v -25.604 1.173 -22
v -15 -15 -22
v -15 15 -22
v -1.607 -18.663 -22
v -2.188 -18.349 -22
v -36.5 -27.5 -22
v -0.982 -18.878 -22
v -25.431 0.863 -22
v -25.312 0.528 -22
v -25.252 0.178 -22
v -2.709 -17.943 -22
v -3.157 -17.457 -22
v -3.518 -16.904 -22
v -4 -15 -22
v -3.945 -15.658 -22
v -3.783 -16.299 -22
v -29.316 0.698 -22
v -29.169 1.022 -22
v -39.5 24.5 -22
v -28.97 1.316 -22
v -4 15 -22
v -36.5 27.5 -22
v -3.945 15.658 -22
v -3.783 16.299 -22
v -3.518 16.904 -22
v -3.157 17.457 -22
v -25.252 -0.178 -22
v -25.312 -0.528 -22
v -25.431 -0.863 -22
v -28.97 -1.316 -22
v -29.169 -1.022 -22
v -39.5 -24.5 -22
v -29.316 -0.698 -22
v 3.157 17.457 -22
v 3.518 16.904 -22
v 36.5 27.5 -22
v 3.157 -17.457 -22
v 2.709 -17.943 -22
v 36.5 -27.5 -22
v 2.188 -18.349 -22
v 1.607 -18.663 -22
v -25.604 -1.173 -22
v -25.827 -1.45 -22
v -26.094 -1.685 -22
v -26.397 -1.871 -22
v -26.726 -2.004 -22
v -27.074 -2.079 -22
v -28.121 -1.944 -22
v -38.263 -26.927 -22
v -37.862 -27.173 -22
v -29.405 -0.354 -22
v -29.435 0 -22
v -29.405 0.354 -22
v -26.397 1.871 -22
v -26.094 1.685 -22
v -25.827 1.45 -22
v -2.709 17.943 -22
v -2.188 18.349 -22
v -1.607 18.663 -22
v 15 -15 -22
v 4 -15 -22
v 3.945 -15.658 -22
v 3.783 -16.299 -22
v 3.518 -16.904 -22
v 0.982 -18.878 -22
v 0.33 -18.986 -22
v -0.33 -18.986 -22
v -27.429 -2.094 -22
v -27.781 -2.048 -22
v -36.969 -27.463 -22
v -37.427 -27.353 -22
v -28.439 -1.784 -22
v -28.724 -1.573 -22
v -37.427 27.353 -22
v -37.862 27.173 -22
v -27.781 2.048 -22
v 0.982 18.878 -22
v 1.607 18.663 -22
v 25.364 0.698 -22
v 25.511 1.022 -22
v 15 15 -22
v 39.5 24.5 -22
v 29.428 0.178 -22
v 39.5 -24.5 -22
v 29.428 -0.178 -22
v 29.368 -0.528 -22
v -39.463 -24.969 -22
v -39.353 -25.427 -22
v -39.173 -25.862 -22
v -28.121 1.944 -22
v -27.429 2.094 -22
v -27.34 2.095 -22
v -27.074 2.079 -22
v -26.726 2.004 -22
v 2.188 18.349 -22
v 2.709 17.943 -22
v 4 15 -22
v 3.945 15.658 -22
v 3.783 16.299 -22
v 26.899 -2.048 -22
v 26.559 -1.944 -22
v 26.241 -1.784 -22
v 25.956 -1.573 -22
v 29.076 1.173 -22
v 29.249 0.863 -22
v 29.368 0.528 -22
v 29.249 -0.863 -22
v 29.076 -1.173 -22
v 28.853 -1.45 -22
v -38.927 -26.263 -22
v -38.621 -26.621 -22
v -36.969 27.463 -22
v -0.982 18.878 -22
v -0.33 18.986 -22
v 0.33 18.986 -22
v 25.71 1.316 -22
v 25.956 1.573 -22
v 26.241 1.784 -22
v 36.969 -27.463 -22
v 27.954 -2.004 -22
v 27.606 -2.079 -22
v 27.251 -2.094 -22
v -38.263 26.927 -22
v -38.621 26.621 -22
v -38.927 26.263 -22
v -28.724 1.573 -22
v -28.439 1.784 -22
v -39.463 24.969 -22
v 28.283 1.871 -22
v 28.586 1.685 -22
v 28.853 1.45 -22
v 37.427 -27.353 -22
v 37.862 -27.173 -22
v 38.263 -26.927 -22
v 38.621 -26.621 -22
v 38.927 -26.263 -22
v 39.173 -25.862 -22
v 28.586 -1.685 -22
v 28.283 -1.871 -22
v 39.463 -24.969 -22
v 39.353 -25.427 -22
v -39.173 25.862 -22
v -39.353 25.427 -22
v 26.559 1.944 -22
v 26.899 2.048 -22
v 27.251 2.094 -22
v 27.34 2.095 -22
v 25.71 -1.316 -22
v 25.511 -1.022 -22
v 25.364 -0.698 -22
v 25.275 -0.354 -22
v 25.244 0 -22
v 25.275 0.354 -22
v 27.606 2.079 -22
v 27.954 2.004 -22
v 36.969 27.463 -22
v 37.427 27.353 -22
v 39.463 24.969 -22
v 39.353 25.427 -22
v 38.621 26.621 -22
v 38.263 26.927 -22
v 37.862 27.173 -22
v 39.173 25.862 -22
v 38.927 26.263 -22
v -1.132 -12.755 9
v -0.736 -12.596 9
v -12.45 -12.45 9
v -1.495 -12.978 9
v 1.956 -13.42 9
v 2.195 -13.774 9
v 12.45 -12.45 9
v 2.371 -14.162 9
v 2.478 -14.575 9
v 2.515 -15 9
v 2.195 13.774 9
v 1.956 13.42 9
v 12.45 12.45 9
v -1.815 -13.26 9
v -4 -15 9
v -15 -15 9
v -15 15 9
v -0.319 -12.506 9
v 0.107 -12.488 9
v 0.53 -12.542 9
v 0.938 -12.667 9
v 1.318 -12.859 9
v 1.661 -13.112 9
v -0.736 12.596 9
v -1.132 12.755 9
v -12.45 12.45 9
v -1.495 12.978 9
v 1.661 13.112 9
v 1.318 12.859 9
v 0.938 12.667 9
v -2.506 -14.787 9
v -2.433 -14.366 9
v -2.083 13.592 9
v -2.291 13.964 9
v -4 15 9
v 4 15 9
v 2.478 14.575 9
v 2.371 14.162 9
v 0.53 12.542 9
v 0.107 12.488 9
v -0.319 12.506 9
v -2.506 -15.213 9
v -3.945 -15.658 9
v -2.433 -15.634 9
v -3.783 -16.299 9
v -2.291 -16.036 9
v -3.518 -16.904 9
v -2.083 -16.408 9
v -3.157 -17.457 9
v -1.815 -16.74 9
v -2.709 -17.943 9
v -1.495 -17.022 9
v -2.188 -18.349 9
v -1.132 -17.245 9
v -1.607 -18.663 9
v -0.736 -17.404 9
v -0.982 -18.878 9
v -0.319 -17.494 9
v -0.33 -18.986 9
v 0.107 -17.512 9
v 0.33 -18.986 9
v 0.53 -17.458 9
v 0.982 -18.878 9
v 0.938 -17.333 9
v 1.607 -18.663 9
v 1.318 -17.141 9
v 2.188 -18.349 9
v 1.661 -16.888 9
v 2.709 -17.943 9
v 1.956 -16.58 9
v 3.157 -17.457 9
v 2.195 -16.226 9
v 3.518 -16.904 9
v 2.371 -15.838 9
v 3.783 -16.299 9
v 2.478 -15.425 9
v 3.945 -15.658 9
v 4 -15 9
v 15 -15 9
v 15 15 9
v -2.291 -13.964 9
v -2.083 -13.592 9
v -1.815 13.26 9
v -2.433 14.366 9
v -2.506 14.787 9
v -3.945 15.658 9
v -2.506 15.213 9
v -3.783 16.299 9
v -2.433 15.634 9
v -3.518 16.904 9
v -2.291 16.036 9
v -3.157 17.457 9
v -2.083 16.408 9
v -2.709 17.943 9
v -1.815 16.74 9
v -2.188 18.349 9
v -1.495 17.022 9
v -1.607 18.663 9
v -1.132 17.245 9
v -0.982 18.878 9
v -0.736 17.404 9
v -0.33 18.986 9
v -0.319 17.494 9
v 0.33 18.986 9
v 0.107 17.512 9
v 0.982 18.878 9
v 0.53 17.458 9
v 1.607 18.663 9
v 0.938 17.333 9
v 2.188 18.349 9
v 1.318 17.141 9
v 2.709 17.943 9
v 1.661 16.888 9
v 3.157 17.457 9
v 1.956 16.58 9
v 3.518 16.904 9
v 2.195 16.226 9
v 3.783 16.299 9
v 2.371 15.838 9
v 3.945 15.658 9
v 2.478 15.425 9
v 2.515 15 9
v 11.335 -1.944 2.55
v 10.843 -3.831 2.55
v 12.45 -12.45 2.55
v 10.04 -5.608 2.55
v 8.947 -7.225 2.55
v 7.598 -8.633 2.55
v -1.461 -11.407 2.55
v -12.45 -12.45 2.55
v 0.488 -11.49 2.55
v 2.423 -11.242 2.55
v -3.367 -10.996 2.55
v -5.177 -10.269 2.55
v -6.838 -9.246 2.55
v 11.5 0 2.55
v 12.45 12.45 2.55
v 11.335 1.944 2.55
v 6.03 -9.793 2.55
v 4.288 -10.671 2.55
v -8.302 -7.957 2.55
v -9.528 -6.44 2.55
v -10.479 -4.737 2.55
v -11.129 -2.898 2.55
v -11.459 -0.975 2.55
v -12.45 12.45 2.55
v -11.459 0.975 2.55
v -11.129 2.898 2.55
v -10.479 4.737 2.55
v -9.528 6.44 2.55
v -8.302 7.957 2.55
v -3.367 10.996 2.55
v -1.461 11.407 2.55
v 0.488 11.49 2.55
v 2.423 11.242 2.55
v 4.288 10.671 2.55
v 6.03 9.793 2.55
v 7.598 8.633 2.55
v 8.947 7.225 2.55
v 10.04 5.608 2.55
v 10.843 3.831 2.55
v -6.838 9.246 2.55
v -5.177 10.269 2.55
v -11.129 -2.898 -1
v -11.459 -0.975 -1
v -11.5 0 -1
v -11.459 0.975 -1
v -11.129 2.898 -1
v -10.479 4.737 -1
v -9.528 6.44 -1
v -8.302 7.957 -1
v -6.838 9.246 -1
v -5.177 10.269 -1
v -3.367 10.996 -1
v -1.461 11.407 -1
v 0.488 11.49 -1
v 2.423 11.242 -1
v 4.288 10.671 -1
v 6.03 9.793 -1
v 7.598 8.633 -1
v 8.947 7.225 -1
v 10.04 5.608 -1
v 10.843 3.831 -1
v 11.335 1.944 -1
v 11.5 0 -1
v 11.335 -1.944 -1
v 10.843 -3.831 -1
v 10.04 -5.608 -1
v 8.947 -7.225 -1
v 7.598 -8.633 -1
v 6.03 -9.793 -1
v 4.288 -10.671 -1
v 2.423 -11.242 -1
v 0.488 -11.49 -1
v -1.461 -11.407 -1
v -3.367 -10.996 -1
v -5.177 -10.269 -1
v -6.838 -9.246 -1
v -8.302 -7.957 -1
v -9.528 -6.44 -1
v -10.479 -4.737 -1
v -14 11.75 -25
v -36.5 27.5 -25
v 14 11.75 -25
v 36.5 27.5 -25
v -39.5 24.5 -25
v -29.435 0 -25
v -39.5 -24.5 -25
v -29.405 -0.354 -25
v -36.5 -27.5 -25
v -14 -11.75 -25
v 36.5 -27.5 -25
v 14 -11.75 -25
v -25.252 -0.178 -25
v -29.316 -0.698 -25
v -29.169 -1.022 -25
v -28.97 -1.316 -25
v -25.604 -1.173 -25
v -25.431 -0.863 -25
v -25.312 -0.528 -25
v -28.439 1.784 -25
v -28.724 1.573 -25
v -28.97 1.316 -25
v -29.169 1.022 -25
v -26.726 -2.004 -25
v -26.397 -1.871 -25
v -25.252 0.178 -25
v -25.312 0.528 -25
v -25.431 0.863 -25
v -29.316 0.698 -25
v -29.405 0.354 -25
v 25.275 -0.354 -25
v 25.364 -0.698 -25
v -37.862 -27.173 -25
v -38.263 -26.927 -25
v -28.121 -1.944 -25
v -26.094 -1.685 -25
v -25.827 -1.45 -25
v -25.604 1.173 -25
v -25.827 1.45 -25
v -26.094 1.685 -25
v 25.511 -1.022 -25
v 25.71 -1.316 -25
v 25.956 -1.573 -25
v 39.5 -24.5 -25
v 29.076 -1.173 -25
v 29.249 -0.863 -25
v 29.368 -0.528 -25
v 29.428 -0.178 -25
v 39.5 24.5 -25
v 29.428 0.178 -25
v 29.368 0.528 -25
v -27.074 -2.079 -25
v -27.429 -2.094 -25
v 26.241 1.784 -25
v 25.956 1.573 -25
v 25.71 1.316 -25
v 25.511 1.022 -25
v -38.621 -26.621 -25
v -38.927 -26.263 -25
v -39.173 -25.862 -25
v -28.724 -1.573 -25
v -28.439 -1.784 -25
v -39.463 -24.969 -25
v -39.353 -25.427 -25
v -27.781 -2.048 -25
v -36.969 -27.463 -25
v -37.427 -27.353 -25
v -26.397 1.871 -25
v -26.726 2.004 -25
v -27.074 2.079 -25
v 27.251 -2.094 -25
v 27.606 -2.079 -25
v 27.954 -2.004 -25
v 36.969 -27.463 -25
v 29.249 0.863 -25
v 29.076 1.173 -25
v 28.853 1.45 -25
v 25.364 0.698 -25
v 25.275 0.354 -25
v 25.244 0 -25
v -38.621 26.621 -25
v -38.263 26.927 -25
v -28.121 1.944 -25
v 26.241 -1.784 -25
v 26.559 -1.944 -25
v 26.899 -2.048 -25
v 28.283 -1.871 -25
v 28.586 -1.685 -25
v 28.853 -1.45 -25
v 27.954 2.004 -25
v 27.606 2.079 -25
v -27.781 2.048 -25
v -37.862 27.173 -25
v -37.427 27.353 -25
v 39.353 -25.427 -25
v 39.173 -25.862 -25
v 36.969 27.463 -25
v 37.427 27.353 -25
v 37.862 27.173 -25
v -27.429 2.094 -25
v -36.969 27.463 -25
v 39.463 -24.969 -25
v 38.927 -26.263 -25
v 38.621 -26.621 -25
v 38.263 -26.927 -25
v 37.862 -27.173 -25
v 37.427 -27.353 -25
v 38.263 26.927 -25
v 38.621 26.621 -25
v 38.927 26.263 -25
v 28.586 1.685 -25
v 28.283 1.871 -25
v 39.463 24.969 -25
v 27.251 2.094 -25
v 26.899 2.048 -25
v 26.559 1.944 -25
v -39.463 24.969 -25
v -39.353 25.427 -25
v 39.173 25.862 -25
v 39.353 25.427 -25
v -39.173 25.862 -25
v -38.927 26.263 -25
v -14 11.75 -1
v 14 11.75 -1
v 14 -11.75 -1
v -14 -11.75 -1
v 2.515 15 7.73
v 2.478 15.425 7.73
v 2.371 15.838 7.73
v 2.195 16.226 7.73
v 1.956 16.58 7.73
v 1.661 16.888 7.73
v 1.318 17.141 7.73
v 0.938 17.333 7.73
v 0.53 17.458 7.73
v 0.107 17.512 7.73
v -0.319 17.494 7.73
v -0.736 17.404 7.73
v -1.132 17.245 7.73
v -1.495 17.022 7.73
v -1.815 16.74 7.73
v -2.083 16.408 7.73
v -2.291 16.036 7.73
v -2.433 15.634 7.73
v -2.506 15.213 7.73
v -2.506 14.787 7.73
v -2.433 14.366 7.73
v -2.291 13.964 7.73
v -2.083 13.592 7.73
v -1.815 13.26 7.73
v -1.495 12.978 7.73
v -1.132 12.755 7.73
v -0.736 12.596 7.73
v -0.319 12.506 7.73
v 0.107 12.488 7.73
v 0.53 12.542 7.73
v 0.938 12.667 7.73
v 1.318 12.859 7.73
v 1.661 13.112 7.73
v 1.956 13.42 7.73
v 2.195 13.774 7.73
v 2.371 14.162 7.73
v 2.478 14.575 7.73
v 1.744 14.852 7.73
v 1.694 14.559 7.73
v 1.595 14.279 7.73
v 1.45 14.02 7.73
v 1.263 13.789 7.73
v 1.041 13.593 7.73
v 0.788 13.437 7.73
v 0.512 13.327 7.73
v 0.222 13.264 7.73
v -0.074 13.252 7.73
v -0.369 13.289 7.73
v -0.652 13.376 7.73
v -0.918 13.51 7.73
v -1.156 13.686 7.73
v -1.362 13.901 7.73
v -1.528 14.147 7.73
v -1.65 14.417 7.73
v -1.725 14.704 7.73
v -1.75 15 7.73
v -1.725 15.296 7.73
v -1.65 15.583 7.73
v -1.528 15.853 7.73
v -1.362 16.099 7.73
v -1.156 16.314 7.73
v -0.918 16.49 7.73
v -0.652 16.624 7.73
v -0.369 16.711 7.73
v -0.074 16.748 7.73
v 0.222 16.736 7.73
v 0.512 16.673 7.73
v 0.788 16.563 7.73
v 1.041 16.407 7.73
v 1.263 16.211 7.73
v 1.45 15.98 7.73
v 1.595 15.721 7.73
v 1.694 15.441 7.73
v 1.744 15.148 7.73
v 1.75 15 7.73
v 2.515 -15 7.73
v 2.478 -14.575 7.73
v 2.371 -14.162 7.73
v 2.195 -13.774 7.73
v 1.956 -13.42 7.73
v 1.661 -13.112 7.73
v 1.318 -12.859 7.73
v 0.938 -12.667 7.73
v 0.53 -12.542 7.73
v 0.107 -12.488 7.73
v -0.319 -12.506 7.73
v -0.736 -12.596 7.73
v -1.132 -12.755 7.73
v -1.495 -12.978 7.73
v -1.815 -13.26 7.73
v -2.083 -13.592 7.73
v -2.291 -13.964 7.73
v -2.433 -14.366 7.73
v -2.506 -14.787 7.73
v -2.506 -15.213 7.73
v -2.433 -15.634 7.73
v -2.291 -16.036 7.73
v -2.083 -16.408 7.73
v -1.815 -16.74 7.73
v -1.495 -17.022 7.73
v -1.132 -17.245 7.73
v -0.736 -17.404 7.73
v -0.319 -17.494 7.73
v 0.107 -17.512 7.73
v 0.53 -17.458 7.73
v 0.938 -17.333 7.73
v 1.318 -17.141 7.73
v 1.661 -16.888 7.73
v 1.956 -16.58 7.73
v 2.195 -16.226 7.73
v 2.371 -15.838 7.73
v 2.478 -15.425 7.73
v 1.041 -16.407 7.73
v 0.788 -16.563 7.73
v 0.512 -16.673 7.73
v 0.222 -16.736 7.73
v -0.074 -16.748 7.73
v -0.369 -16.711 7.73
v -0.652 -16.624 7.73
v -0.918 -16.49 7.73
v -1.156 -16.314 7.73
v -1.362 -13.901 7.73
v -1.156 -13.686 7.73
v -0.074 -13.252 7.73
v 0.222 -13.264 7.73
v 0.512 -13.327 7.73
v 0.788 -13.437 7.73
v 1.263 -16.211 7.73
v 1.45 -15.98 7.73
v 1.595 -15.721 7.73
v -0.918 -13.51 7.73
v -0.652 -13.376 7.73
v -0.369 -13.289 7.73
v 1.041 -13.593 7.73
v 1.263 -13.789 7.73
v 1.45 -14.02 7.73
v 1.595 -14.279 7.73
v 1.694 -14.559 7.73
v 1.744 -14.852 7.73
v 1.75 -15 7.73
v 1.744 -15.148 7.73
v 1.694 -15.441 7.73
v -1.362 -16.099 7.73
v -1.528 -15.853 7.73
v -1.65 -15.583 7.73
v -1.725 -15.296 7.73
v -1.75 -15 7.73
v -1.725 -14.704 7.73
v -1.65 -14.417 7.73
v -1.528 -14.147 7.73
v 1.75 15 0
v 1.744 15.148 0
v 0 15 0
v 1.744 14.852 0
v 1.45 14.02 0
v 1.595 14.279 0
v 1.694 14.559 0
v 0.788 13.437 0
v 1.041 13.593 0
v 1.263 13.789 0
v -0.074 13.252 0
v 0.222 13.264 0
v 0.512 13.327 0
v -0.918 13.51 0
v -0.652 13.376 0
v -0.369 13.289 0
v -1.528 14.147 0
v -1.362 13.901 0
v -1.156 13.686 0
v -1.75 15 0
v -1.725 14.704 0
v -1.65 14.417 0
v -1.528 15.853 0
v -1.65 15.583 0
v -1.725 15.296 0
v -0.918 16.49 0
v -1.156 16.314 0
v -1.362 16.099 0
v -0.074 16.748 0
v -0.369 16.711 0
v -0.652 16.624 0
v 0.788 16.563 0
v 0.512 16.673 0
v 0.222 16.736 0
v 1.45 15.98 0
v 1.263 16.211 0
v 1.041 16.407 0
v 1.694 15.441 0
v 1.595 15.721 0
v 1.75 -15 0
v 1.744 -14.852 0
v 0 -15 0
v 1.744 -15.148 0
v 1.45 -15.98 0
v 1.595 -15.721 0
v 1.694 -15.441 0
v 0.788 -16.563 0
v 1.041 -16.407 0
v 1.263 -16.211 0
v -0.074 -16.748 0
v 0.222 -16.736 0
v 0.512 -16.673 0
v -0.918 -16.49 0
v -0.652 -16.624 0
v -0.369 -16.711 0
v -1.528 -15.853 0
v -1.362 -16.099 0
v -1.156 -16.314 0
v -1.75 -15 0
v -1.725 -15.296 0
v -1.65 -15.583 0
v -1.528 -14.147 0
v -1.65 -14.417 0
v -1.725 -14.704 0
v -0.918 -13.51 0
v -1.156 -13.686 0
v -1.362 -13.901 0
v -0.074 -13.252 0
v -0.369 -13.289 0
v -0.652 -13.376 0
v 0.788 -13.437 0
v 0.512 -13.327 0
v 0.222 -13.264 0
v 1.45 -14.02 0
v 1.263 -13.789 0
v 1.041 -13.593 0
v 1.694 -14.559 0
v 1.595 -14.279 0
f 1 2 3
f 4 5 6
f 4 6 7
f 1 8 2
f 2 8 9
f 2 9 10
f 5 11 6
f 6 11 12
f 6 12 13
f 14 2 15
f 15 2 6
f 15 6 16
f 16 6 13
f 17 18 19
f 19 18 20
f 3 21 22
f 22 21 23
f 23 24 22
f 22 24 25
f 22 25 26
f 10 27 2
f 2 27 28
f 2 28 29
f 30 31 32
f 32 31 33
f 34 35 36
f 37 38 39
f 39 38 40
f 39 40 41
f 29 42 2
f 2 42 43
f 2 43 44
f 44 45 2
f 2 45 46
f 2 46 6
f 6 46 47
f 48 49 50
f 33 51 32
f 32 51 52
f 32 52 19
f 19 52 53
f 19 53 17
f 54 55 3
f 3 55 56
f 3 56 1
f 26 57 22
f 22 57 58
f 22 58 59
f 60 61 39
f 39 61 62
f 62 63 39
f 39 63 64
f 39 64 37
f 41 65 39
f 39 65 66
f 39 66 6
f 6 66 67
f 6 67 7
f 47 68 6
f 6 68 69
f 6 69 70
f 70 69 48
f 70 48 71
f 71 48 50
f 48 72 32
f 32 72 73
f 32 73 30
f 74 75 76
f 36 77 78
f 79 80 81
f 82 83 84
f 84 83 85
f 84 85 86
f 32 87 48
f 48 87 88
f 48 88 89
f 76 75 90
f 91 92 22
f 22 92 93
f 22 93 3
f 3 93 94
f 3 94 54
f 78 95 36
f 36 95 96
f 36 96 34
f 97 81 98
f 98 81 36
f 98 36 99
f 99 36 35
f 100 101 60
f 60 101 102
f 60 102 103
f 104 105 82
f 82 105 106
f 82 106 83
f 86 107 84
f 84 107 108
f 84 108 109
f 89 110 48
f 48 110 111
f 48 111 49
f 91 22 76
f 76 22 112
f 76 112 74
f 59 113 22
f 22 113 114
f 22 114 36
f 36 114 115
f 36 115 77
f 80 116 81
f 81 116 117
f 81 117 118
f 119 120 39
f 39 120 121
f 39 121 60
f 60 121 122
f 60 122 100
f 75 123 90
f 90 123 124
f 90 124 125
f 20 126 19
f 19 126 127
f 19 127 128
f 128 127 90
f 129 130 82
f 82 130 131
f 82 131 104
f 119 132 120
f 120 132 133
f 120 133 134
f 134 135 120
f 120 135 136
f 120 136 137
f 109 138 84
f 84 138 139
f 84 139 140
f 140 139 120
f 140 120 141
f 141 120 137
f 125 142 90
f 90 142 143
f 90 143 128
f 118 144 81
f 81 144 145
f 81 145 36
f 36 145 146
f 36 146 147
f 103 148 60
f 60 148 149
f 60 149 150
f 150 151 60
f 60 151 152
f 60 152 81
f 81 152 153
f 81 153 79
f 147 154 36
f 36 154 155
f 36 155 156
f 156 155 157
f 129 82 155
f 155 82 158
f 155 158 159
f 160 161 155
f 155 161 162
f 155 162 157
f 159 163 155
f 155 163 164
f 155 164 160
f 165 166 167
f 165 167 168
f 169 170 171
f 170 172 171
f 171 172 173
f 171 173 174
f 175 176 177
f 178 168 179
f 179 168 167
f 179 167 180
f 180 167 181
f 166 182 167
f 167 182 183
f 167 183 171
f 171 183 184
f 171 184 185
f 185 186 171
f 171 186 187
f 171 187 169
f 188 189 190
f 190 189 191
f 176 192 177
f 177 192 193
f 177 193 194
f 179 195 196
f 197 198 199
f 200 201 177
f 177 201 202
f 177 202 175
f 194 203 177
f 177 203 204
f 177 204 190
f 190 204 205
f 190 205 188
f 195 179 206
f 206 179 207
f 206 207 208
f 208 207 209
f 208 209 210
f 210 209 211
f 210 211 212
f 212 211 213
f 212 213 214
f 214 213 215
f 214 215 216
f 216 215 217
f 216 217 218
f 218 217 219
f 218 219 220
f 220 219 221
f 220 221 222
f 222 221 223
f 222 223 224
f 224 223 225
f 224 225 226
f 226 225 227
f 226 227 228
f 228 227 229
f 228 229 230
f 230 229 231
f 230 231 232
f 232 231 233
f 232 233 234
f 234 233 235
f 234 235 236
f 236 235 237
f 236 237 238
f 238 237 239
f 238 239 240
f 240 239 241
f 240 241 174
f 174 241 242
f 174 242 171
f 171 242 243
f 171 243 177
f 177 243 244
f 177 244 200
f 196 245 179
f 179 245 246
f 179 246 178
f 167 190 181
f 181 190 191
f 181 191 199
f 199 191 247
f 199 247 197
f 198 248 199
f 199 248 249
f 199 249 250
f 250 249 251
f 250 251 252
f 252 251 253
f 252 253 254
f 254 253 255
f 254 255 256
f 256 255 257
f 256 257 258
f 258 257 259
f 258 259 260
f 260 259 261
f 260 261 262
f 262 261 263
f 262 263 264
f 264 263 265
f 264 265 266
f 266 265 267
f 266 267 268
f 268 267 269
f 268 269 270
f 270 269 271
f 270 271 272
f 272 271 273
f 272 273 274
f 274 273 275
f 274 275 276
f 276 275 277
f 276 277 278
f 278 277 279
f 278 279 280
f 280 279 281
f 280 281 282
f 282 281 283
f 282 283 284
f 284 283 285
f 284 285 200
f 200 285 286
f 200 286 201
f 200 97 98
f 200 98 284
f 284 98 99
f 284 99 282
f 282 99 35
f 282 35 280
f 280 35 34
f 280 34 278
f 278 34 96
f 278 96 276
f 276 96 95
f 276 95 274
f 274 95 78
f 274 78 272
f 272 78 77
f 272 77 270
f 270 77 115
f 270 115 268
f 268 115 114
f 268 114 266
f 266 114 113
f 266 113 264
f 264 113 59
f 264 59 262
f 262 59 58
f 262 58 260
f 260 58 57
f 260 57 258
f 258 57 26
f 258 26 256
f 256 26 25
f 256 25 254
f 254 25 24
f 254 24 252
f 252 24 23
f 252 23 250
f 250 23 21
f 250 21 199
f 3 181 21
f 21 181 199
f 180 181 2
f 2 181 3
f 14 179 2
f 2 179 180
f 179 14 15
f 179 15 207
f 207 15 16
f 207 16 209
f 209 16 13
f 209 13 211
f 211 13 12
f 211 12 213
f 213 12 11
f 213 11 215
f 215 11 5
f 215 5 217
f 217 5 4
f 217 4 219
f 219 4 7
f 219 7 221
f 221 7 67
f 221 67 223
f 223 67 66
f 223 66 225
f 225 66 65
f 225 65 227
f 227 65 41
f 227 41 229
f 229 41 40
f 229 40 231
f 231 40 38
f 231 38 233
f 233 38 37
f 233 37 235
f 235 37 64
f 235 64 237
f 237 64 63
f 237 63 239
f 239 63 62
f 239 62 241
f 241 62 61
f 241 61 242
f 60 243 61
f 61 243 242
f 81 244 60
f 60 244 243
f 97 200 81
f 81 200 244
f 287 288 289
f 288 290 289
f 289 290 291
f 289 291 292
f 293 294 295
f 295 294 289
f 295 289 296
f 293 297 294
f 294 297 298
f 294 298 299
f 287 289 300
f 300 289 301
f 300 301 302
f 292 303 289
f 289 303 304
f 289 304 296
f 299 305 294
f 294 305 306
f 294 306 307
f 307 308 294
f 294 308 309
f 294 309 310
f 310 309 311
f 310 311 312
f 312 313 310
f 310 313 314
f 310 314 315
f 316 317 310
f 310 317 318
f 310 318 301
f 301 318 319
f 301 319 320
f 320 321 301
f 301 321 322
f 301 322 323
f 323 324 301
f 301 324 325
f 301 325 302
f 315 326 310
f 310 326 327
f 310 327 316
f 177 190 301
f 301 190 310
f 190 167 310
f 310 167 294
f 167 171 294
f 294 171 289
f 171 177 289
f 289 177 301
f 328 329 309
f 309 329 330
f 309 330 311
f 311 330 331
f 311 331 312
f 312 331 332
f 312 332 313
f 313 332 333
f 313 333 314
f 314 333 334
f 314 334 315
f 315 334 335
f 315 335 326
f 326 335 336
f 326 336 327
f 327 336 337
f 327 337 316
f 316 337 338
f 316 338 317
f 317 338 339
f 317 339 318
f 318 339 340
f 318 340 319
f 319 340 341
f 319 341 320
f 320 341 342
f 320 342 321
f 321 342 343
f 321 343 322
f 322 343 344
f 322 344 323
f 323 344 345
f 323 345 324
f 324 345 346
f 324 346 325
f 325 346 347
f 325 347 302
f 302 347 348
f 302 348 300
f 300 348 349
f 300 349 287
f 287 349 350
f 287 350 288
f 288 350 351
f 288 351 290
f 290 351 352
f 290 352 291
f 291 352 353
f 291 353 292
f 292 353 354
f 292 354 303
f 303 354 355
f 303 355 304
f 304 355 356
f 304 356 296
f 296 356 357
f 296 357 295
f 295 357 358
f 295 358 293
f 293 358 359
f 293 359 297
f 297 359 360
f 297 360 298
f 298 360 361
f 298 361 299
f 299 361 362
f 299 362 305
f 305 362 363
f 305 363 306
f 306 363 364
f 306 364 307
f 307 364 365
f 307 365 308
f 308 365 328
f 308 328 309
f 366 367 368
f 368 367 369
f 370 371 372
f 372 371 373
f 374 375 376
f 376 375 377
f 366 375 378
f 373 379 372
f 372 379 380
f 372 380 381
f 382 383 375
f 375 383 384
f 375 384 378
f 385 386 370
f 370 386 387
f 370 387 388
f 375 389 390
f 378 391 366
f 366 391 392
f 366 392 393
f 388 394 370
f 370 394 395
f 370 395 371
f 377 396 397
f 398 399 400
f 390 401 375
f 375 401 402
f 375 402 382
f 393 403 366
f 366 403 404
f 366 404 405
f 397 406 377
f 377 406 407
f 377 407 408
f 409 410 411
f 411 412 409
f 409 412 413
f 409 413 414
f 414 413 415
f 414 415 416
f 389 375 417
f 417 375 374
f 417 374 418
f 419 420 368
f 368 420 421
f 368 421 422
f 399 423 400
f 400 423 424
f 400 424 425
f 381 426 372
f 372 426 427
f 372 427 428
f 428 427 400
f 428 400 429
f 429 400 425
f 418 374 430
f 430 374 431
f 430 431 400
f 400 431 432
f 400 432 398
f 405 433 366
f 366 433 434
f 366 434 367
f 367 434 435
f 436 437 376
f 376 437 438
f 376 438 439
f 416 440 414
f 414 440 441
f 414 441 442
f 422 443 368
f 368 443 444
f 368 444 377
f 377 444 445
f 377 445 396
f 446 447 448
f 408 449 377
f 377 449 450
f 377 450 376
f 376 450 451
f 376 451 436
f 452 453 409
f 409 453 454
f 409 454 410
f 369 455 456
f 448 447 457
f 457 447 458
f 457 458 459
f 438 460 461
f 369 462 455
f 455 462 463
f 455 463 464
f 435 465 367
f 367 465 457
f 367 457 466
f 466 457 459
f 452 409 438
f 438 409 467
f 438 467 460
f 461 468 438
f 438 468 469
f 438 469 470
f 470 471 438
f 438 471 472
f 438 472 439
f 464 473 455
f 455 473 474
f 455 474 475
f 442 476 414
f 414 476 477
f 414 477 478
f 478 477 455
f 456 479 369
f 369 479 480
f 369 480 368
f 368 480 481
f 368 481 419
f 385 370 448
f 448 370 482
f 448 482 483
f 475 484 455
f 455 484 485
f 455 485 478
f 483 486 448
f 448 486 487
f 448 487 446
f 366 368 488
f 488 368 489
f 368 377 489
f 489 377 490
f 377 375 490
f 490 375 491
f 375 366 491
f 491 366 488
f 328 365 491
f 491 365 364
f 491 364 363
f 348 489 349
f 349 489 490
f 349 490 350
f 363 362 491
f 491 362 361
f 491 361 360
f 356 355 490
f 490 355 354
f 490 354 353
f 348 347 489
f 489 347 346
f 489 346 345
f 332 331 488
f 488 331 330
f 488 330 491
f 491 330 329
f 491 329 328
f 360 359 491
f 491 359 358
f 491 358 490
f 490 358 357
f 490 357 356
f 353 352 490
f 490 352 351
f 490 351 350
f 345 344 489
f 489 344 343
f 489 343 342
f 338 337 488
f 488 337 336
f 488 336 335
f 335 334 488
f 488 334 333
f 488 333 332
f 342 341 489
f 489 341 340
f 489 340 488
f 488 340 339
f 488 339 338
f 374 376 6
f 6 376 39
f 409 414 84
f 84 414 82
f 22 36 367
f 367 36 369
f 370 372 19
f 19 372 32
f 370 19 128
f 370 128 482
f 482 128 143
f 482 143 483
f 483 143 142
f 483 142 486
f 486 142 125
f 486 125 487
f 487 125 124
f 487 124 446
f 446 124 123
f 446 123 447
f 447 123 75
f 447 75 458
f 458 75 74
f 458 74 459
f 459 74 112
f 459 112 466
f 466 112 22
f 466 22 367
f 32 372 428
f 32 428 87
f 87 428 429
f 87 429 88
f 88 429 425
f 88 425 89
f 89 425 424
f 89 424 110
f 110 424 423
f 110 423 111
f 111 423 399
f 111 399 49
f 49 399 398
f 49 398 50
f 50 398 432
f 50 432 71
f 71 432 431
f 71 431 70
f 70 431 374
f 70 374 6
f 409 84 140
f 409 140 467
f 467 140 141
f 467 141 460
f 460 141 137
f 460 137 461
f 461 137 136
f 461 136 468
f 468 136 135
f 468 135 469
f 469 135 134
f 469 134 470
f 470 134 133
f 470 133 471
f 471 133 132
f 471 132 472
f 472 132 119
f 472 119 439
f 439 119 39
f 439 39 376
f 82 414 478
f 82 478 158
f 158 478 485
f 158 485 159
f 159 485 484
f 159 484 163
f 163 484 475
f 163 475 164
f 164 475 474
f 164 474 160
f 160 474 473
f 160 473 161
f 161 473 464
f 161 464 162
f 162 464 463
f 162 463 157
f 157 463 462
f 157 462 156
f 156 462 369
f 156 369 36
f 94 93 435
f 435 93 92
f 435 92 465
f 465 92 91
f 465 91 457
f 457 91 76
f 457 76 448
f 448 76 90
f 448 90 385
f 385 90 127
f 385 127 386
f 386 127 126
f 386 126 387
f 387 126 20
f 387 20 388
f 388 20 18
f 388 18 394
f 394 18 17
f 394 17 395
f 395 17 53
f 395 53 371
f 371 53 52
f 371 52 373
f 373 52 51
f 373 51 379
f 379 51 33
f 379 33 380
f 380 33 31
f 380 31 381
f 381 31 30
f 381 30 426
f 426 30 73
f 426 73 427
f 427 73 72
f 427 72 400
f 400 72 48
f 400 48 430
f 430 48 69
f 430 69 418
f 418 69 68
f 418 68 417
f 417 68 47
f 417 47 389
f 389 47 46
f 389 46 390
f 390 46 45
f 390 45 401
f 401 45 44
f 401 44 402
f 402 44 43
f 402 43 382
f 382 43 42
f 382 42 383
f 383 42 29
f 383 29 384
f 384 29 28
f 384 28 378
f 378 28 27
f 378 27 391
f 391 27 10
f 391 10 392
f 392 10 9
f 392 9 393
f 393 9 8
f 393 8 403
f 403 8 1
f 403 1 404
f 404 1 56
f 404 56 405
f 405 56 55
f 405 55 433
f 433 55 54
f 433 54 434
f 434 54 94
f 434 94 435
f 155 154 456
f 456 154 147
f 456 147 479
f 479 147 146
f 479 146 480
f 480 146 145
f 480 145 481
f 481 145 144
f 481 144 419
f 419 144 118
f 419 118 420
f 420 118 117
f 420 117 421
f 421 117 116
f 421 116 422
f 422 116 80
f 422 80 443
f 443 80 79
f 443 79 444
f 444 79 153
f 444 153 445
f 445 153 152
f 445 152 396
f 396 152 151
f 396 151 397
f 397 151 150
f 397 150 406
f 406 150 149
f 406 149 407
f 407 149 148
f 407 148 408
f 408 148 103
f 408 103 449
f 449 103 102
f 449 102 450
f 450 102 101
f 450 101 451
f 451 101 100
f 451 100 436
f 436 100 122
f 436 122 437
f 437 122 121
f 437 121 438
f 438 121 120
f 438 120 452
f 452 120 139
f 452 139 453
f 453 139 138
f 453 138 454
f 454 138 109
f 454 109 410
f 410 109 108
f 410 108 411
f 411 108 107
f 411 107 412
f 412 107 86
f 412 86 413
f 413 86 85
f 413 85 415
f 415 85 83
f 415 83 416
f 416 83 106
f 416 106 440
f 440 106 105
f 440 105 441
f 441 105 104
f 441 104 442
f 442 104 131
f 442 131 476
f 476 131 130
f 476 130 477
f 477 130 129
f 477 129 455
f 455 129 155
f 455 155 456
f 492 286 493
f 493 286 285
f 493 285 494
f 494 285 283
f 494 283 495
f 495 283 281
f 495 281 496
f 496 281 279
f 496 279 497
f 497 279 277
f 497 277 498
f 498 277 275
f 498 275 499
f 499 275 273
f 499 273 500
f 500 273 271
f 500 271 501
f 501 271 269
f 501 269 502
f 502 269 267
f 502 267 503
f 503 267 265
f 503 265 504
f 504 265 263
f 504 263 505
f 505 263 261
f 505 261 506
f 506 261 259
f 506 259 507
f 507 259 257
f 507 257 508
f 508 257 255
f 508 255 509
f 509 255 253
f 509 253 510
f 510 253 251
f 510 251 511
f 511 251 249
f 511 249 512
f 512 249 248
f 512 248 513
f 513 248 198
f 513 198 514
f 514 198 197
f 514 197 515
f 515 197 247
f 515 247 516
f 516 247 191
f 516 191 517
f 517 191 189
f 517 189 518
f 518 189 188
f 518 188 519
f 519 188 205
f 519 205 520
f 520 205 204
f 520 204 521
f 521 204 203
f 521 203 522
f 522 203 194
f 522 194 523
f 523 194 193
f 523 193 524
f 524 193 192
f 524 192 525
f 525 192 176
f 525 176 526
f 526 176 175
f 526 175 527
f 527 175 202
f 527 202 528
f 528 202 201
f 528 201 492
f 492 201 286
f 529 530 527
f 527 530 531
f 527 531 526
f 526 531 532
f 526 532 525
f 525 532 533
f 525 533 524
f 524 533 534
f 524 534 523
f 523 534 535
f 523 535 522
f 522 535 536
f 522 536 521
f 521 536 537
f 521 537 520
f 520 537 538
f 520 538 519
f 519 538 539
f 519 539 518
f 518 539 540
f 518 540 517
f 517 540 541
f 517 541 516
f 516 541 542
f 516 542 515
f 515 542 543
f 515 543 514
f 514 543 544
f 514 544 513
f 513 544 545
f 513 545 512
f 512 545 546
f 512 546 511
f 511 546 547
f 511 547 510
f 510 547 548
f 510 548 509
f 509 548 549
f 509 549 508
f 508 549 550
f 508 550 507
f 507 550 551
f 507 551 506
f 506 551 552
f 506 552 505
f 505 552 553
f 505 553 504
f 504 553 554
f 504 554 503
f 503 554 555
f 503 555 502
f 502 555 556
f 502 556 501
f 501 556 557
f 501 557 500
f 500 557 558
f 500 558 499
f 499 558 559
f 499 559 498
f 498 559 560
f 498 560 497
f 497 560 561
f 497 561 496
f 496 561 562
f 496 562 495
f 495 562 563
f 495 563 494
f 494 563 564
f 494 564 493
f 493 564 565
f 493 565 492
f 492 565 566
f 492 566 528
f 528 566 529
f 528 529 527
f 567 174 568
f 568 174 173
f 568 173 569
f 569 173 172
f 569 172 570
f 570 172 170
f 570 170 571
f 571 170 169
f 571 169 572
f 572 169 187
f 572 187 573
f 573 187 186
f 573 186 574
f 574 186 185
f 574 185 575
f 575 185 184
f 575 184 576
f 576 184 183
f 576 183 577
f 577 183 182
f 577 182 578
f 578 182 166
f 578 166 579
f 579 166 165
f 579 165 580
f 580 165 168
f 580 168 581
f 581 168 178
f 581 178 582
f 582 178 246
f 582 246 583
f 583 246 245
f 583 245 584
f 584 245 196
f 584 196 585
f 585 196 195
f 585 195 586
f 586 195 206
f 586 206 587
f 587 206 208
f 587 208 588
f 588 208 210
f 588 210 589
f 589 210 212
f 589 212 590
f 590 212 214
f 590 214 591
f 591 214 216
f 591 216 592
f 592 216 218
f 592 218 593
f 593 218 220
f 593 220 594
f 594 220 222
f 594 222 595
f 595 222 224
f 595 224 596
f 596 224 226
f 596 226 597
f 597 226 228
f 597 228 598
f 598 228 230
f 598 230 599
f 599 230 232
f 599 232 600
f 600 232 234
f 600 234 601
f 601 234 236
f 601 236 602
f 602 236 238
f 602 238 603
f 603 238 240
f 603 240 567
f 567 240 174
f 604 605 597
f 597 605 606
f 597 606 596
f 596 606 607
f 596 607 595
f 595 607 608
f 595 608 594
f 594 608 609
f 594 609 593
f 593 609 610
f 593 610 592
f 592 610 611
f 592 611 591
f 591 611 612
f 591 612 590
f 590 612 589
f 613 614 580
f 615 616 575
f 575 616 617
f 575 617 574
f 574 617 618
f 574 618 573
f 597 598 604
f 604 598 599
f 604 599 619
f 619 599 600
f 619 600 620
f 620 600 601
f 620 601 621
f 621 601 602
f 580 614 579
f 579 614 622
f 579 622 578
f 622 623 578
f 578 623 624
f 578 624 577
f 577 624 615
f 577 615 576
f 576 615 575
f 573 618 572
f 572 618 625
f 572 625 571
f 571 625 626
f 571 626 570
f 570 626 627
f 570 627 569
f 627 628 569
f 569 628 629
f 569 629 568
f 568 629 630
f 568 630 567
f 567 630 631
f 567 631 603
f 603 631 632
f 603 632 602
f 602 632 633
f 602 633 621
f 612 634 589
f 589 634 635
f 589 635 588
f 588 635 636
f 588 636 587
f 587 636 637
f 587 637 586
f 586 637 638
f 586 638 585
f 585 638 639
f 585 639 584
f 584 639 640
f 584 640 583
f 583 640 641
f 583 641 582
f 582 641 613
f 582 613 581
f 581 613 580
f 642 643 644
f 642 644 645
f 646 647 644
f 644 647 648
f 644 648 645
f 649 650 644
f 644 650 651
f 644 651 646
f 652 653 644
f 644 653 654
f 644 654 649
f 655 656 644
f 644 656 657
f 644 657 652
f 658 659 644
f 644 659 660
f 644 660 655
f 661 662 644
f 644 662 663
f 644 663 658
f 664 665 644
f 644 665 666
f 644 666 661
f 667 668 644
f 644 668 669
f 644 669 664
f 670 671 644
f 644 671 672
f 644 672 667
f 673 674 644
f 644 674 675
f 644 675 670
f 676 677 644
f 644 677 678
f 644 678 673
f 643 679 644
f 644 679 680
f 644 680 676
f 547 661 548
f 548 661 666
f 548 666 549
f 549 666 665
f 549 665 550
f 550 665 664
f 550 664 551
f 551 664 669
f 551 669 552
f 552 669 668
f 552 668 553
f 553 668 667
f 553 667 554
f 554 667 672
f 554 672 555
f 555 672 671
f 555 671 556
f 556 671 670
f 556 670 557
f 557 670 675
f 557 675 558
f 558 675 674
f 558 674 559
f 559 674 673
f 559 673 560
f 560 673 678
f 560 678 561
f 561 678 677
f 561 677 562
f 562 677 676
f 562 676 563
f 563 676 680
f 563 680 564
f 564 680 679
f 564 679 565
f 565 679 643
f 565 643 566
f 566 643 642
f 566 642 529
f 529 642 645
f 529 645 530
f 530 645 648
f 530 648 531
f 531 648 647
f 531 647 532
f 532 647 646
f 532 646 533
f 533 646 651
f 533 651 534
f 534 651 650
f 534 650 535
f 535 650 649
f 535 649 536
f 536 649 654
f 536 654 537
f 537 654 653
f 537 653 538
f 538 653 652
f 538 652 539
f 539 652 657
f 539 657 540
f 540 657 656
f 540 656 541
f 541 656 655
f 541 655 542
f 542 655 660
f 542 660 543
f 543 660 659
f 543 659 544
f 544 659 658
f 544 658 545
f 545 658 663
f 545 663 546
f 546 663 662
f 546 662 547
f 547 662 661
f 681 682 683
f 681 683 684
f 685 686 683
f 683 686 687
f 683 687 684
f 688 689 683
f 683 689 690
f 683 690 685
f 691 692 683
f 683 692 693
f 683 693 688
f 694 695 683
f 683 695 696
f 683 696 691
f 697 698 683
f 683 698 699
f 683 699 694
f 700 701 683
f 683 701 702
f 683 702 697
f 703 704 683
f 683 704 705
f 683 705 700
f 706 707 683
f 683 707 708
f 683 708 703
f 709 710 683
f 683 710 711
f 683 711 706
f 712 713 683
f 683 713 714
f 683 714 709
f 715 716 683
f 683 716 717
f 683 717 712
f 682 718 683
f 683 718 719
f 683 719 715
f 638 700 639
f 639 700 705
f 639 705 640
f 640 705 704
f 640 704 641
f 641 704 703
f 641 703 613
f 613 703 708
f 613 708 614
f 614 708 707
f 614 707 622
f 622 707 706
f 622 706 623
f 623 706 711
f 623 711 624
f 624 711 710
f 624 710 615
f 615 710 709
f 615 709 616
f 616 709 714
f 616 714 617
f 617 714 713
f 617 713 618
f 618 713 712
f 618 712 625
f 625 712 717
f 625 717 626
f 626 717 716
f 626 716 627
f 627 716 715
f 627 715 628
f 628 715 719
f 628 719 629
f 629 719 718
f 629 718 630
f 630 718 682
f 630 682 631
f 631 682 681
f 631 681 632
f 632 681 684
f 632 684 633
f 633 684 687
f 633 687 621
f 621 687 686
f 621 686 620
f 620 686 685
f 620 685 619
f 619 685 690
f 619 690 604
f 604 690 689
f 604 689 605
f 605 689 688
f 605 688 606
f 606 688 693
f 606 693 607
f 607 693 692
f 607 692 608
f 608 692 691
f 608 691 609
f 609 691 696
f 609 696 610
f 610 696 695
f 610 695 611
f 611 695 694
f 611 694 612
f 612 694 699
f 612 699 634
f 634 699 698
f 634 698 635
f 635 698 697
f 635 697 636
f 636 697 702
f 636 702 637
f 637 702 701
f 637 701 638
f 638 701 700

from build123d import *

# Parameters (mm, degrees)
SKETCH1_R            = 1.75
BOSS_EXTRUDE1_DEPTH  = 9
SHELL2_START         = 2.55
SHELL2_OUTLINE_W     = 24.9
SHELL2_OUTLINE_H     = 24.9
SHELL2_DEPTH         = 6.45
CUT_EXTRUDE1_REACH   = 27.052
SKETCH6_R            = 11.5
BOSS_EXTRUDE5_DEPTH  = 25
SHELL7_T             = -1
CUT_EXTRUDE6_START   = -1
SKETCH12_R           = 11.5
CUT_EXTRUDE6_DEPTH   = 1
SKETCH19_W           = 3
SKETCH19_H           = 25.5
BOSS_EXTRUDE17_DEPTH = 23
SKETCH20_W           = 3
SKETCH20_H           = 25.5
BOSS_EXTRUDE18_DEPTH = 23
SKETCH21_W           = 79
SKETCH21_H           = 55
SKETCH21_W_2         = 76
SKETCH21_H_2         = 25.5
BOSS_EXTRUDE19_DEPTH = 3
FILLET1_R            = 3
SKETCH22_R           = 2.0955
CUT_EXTRUDE7_DEPTH   = 3
BOSS_EXTRUDE34_REACH = 56.236
SKETCH37_R           = 2.5146
CUT_EXTRUDE8_DEPTH   = 1.27


# Read off the part's stored shape, not the designer's step: Shell2
with BuildPart() as part:
    # Sketch1 → Boss-Extrude1 (new body)
    with BuildSketch(Plane.XY):
        with BuildLine():
            Line((15, 15), (4, 15))
            ThreePointArc((4, 15), (0, 19), (-4, 15))
            Line((-4, 15), (-15, 15))
            Line((-15, 15), (-15, -15))
            Line((-15, -15), (-4, -15))
            ThreePointArc((-4, -15), (0, -19), (4, -15))
            Line((4, -15), (15, -15))
            Line((15, -15), (15, 15))
        make_face()
        with Locations((0, -15)):
            Circle(SKETCH1_R, mode=Mode.SUBTRACT)
        with Locations((0, 15)):
            Circle(SKETCH1_R, mode=Mode.SUBTRACT)
    extrude(amount=BOSS_EXTRUDE1_DEPTH)

    # Shell2 outline → Shell2 (cut)
    with BuildSketch(Plane.XY.offset(SHELL2_START)):
        Rectangle(SHELL2_OUTLINE_W, SHELL2_OUTLINE_H)
    extrude(amount=SHELL2_DEPTH, mode=Mode.SUBTRACT)

    # Sketch6 → Cut-Extrude1 (cut, up to next)
    with BuildSketch(Plane.XY.offset(2.55), mode=Mode.PRIVATE) as cut_extrude1_sk1:
        Circle(SKETCH6_R)
    cut_extrude1_tool1 = extrude(cut_extrude1_sk1.sketch, amount=-CUT_EXTRUDE1_REACH, mode=Mode.PRIVATE) & part.part
    add(cut_extrude1_tool1.solids().sort_by_distance((0, 0, 2.55))[0], mode=Mode.SUBTRACT)


with BuildPart() as body_2:
    # Sketch11 → Boss-Extrude5 (new body)
    with BuildSketch(Plane(origin=(0, 0, 0), x_dir=(-1, 0, 0), z_dir=(0, 0, -1))):
        Polygon((-15, -12.75), (2.39, -12.75), (15, -12.75), (15, 12.75), (2.39, 12.75), (-15, 12.75), align=None)
    extrude(amount=BOSS_EXTRUDE5_DEPTH)

    # Shell7
    shell7_openings = [body_2.faces().sort_by_distance(p)[0] for p in [
        (0, 0, -25),
    ]]
    offset(amount=SHELL7_T, openings=shell7_openings, kind=Kind.INTERSECTION)

    # Sketch12 → Cut-Extrude6 (cut)
    with BuildSketch(Plane(origin=(0, 0, -1), x_dir=(-1, 0, 0), z_dir=(0, 0, -1)).offset(CUT_EXTRUDE6_START)):
        with Locations(Location((0, 0, 0), (0, 0, 180))):
            Circle(SKETCH12_R)
    extrude(amount=CUT_EXTRUDE6_DEPTH, mode=Mode.SUBTRACT)

    # Sketch19 → Boss-Extrude17 (add)
    with BuildSketch(Plane(origin=(15, 0, 0), x_dir=(0, 0, -1), z_dir=(1, 0, 0))):
        with Locations((23.5, 0)):
            Rectangle(SKETCH19_W, SKETCH19_H)
    extrude(amount=BOSS_EXTRUDE17_DEPTH)

    # Sketch20 → Boss-Extrude18 (add)
    with BuildSketch(Plane.ZY.offset(15)):
        with Locations((-23.5, 0)):
            Rectangle(SKETCH20_W, SKETCH20_H)
    extrude(amount=BOSS_EXTRUDE18_DEPTH)

    # Sketch21 → Boss-Extrude19 (add)
    with BuildSketch(Plane(origin=(0, 0, -25), x_dir=(-1, 0, 0), z_dir=(0, 0, -1))):
        Rectangle(SKETCH21_W, SKETCH21_H)
        Rectangle(SKETCH21_W_2, SKETCH21_H_2, mode=Mode.SUBTRACT)
    extrude(amount=-BOSS_EXTRUDE19_DEPTH)

    # Fillet1
    fillet1_edges = [body_2.edges().sort_by_distance(p)[0] for p in [
        (-39.5, -27.5, -23.5),
        (39.5, -27.5, -23.5),
        (39.5, 27.5, -23.5),
        (-39.5, 27.5, -23.5),
    ]]
    fillet(fillet1_edges, radius=FILLET1_R)

    # Sketch22 → Cut-Extrude7 (cut)
    with BuildSketch(Plane(origin=(0, 0, -25), x_dir=(-1, 0, 0), z_dir=(0, 0, -1))):
        with Locations((-27.34, 0)):
            Circle(SKETCH22_R)
        with Locations((27.34, 0)):
            Circle(SKETCH22_R)
    extrude(amount=-CUT_EXTRUDE7_DEPTH, mode=Mode.SUBTRACT)

    # Sketch31 → Boss-Extrude34 (add, up to next)
    with BuildSketch(Plane(origin=(0, 0, 0), x_dir=(-1, 0, 0), z_dir=(0, 0, -1)), mode=Mode.PRIVATE) as boss_extrude34_sk1:
        with BuildLine():
            Line((15, 15), (4, 15))
            ThreePointArc((4, 15), (0, 19), (-4, 15))
            Line((-4, 15), (-15, 15))
            Line((-15, 15), (-15, 12.75))
            Line((-15, 12.75), (15, 12.75))
            Line((15, 12.75), (15, 15))
        make_face()
    boss_extrude34_tool1 = extrude(boss_extrude34_sk1.sketch, amount=BOSS_EXTRUDE34_REACH, mode=Mode.PRIVATE) - body_2.part
    # Sketch31 → Boss-Extrude34 (add, up to next)
    with BuildSketch(Plane(origin=(0, 0, 0), x_dir=(-1, 0, 0), z_dir=(0, 0, -1)), mode=Mode.PRIVATE) as boss_extrude34_sk2:
        with BuildLine():
            Line((15, -12.75), (-15, -12.75))
            Line((-15, -12.75), (-15, -15))
            Line((-15, -15), (-4, -15))
            ThreePointArc((-4, -15), (0, -19), (4, -15))
            Line((4, -15), (15, -15))
            Line((15, -15), (15, -12.75))
        make_face()
    boss_extrude34_tool2 = extrude(boss_extrude34_sk2.sketch, amount=BOSS_EXTRUDE34_REACH, mode=Mode.PRIVATE) - body_2.part

    add(part.part)  # Boss-Extrude34 merges part
    add(boss_extrude34_tool1.solids().sort_by_distance((0, 14.640831, 0))[0])
    add(boss_extrude34_tool2.solids().sort_by_distance((0, -14.640831, 0))[0])

    # Sketch37 → Cut-Extrude8 (cut)
    with BuildSketch(Plane.XY.offset(9)):
        with Locations((0, 15)):
            Circle(SKETCH37_R)
        with Locations((0, -15)):
            Circle(SKETCH37_R)
    extrude(amount=-CUT_EXTRUDE8_DEPTH, mode=Mode.SUBTRACT)


solid = body_2.part
